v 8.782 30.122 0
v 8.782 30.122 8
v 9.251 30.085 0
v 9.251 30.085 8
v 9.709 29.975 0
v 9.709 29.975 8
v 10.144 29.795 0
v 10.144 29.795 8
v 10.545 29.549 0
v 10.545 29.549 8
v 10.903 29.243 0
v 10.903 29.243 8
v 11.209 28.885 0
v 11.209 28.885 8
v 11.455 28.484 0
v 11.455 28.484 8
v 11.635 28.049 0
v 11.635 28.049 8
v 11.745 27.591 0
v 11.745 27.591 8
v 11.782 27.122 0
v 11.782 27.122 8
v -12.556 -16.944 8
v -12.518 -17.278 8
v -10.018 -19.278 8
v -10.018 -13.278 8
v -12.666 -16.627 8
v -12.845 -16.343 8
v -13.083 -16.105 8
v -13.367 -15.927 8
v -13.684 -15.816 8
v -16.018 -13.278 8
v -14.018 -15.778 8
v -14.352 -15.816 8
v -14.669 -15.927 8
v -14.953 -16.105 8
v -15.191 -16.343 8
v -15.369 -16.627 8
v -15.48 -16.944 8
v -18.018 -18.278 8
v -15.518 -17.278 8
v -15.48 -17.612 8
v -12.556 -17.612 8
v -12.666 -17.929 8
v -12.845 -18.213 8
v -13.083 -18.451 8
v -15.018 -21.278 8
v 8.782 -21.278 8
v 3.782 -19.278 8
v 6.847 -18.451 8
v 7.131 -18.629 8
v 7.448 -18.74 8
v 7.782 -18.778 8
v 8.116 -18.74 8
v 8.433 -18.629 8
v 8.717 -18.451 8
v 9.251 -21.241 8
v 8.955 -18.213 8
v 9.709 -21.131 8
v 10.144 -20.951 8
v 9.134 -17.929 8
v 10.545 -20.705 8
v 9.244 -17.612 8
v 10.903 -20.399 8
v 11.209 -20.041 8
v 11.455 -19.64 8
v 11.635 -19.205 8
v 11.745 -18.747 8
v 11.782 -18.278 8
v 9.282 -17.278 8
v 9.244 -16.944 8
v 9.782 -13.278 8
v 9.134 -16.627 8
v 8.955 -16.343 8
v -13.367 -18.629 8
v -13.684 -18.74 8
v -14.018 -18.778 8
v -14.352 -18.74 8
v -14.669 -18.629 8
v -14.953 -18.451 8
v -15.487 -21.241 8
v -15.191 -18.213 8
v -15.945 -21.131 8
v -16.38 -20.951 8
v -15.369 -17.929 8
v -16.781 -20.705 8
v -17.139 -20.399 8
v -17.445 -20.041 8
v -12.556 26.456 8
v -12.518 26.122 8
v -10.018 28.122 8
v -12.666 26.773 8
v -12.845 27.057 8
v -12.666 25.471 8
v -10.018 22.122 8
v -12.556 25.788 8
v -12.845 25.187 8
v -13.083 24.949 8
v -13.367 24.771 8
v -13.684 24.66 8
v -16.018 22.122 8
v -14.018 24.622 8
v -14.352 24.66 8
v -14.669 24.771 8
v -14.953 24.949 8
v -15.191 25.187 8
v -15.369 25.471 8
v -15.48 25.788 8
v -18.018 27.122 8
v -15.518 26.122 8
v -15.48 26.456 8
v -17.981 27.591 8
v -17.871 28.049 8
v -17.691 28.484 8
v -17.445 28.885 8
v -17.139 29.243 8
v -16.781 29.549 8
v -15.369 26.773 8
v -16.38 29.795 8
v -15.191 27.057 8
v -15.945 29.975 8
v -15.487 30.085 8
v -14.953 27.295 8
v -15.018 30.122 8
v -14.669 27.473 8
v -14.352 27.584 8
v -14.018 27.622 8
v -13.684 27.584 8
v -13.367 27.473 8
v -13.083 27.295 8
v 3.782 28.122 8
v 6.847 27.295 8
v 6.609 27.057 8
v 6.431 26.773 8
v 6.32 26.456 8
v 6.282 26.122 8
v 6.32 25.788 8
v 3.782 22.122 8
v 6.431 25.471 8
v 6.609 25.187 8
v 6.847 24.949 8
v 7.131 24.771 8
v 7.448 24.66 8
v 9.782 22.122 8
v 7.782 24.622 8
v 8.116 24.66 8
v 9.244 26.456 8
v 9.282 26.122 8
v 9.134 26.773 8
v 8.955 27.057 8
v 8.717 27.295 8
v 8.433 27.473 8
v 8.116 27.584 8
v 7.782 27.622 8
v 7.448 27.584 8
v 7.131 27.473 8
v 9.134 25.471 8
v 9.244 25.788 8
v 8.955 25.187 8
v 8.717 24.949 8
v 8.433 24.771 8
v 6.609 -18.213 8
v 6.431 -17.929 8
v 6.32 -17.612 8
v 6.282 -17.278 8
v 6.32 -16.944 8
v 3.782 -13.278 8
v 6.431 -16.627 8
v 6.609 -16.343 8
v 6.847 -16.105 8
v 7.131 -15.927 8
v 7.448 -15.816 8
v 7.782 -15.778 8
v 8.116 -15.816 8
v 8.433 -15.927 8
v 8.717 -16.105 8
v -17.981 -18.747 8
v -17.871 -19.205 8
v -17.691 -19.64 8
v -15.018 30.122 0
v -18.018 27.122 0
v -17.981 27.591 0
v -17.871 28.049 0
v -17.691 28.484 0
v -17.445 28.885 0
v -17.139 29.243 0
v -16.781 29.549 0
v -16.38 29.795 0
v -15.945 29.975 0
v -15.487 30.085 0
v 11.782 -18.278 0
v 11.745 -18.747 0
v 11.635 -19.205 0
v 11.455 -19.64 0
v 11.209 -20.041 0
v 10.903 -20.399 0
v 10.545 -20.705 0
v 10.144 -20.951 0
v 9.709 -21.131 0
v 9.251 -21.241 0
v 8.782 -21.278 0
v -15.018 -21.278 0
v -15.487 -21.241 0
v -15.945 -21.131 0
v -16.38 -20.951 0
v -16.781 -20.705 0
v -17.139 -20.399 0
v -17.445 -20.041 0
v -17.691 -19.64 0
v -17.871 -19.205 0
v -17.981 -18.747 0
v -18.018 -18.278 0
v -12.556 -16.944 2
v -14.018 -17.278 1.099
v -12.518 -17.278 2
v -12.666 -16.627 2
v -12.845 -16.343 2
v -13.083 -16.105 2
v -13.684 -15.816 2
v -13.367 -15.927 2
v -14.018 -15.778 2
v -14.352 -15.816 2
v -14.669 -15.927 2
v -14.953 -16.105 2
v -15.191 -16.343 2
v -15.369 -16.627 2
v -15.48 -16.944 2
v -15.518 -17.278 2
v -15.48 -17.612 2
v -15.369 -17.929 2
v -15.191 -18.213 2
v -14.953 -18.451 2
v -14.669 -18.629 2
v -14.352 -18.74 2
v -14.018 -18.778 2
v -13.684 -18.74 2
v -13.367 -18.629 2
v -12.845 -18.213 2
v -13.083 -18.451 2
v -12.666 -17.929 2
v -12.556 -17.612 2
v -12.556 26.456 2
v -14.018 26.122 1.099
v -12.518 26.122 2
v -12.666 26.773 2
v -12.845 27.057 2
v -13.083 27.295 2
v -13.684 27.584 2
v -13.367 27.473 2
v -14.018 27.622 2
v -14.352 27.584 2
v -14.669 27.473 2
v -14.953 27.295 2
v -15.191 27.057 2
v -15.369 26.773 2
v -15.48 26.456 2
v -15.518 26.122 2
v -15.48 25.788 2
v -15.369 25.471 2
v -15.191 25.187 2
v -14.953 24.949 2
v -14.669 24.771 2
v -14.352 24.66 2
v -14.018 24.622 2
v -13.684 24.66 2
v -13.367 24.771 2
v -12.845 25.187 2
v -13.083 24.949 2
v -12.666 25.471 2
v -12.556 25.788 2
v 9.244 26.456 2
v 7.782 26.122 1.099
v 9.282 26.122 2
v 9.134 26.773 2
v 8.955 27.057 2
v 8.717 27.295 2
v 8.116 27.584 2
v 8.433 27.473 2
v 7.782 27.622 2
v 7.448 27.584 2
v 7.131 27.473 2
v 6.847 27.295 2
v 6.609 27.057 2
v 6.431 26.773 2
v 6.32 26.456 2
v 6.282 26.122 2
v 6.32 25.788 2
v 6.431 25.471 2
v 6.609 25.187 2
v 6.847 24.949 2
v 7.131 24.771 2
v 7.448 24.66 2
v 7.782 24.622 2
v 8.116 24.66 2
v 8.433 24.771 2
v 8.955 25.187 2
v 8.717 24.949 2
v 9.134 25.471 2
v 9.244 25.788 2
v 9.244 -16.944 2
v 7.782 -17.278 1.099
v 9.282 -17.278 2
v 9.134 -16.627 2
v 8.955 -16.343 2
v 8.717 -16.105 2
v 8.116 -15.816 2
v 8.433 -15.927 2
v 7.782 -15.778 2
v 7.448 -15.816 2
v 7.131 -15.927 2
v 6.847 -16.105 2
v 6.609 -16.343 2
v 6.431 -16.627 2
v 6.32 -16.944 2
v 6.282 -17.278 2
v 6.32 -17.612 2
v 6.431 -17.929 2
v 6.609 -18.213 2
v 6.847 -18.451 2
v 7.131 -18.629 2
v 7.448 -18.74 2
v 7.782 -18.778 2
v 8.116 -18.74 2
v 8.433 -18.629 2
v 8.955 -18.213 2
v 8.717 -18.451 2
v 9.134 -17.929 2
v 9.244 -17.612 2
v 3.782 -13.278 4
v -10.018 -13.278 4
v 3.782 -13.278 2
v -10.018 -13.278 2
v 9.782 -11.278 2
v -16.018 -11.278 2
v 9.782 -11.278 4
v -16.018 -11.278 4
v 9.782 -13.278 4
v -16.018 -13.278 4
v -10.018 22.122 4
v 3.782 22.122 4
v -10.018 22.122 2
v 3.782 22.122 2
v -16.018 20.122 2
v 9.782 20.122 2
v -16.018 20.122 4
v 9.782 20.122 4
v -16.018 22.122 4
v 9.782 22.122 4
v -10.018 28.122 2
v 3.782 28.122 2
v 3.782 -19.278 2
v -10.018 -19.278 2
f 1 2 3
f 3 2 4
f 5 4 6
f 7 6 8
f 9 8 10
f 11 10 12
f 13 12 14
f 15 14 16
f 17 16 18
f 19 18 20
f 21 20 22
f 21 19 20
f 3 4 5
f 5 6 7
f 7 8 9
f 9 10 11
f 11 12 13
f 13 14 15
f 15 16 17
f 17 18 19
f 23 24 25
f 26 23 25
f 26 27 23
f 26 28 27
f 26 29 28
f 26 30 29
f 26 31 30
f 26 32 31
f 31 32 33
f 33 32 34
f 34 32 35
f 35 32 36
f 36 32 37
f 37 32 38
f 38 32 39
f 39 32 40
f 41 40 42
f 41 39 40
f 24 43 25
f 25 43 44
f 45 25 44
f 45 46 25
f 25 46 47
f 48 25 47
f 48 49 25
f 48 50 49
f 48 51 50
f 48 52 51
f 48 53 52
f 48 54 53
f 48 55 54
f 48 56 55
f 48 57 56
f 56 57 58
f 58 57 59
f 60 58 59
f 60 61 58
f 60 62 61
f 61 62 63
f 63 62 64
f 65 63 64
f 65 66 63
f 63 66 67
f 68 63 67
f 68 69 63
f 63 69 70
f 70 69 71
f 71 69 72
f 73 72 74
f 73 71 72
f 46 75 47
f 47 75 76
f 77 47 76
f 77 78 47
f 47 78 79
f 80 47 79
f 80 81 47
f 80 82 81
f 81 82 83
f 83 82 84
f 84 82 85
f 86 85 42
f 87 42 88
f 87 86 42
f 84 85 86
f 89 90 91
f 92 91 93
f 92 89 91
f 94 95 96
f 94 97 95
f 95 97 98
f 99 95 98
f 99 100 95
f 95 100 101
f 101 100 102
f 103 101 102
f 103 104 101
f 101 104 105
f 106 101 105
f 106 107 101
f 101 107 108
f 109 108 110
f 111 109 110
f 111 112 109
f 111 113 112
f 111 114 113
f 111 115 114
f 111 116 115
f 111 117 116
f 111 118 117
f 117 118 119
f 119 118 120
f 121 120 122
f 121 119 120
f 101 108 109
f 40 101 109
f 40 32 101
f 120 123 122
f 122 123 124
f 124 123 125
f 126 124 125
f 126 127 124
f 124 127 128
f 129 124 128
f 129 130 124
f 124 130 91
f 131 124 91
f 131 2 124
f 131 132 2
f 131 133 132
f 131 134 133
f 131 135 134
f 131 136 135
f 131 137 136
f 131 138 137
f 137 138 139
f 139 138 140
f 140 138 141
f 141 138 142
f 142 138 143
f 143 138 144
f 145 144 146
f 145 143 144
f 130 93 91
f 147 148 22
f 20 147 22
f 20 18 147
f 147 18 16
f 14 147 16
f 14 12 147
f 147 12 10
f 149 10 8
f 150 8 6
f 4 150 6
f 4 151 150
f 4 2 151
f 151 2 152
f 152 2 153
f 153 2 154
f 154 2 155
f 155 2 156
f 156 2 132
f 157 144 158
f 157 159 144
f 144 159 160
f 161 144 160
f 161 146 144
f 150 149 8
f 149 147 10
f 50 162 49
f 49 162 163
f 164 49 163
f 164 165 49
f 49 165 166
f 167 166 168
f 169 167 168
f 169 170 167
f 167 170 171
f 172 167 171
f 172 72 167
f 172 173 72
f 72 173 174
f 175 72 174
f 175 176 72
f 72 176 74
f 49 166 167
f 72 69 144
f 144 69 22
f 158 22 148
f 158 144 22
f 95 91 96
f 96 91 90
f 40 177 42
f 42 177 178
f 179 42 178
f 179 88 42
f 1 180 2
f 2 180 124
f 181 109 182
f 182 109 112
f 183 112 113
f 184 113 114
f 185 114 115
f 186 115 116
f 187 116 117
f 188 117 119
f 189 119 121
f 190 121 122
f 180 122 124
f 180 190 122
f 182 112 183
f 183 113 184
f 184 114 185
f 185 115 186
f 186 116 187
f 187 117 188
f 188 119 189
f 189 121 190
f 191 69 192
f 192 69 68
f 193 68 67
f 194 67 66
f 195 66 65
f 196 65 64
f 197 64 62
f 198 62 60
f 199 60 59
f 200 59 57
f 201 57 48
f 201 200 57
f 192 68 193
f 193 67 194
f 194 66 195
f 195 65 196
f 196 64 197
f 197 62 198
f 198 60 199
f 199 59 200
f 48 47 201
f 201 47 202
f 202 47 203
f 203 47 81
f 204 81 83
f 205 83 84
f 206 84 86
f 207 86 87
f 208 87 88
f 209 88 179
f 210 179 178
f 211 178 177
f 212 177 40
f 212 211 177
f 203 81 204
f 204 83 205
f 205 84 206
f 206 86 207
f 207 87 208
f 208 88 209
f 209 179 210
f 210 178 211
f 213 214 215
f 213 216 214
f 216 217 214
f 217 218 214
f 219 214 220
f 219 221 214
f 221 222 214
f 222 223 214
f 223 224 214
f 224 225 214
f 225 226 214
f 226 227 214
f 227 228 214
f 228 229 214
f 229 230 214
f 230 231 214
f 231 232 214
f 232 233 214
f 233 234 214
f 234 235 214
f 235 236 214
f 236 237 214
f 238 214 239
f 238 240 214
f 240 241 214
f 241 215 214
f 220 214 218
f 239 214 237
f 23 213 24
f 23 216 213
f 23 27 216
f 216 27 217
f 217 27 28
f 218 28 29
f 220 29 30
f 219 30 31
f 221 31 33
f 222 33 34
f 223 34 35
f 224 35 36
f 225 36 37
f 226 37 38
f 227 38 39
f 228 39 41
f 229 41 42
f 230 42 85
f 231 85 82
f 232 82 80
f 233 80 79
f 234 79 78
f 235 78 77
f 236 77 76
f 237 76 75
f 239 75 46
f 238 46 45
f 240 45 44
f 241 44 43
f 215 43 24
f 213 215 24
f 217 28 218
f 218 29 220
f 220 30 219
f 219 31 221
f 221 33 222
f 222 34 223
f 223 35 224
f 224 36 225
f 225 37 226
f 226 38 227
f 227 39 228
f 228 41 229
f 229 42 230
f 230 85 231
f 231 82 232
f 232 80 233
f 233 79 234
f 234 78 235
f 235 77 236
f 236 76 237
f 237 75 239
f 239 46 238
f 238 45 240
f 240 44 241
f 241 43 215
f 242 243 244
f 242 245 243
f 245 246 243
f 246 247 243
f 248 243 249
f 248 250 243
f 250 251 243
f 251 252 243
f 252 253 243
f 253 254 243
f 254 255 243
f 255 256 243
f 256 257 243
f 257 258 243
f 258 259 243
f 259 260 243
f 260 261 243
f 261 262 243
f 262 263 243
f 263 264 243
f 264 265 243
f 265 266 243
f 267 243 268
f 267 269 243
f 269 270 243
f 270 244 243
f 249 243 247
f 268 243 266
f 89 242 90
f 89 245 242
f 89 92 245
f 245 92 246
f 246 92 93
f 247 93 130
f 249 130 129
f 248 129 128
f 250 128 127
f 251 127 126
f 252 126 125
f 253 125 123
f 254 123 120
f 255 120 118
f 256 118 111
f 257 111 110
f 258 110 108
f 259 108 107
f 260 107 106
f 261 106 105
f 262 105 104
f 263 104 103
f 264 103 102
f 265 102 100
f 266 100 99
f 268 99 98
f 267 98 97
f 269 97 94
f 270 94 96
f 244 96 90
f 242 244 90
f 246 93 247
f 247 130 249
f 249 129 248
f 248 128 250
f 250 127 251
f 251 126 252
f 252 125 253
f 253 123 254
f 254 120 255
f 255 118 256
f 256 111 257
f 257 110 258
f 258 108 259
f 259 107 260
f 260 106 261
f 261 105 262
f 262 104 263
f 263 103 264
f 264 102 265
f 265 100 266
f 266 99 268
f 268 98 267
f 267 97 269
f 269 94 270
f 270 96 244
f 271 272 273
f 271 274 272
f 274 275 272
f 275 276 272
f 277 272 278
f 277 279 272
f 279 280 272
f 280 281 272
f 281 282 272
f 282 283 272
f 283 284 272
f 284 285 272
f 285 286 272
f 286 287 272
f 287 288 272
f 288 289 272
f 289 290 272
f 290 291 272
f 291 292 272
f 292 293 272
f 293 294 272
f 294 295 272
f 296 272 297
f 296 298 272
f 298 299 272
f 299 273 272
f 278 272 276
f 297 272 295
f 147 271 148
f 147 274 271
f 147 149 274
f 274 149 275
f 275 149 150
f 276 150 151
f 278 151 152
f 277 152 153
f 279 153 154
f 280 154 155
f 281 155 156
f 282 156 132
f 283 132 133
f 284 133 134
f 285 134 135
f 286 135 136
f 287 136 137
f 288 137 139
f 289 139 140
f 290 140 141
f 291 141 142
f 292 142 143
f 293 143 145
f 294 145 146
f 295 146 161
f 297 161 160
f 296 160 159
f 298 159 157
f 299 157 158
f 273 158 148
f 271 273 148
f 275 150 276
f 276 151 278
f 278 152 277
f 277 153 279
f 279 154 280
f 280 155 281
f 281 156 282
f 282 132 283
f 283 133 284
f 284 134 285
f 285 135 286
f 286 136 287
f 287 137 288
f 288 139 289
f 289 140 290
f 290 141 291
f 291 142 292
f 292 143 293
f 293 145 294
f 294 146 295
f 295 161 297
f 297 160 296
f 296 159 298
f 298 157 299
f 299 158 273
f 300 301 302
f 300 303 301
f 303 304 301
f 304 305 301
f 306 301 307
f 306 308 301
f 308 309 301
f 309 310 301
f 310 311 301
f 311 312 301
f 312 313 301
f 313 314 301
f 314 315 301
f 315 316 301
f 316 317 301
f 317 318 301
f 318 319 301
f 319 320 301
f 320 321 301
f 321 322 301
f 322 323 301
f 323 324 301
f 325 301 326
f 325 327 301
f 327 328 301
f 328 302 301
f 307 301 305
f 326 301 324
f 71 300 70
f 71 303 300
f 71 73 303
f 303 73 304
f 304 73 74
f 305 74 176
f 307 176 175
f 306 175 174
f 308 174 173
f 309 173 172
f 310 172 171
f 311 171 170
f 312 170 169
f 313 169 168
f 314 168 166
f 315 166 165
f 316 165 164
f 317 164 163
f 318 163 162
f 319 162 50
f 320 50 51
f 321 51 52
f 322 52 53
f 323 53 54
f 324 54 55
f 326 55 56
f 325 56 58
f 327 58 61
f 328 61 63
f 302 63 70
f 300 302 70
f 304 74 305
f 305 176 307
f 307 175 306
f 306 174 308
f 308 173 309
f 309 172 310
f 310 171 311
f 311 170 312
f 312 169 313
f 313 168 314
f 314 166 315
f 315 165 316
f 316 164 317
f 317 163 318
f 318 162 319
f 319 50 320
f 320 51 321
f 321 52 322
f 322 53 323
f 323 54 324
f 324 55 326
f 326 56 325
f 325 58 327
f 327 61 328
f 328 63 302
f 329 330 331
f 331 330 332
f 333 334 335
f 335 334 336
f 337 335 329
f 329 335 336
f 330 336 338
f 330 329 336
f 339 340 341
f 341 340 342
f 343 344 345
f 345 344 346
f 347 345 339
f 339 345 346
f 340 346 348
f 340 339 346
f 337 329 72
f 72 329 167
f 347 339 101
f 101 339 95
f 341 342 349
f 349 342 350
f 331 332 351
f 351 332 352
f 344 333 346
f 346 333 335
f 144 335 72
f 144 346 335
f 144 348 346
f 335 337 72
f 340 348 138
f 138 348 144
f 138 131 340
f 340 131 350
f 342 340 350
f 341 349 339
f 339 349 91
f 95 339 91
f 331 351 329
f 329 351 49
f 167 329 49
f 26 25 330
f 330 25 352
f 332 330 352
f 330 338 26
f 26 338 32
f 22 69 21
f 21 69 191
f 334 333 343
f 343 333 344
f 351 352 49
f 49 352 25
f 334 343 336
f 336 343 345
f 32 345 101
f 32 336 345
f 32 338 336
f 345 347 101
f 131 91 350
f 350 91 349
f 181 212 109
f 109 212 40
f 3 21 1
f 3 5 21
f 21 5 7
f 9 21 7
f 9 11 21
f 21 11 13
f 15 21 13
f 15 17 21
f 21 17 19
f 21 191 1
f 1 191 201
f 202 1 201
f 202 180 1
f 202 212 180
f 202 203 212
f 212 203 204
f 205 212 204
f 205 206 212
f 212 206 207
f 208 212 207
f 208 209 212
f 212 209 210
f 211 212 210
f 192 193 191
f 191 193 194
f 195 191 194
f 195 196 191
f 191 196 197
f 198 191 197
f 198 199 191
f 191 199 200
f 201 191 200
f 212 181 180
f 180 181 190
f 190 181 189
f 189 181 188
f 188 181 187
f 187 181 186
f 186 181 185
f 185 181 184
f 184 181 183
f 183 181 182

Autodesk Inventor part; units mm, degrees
ref_plane "YZ Plane" through (0, 0, 0) normal (1, 0, 0) x (0, 1, 0)
ref_plane "XZ Plane" through (0, 0, 0) normal (0, 1, 0) x (-1, 0, 0)
ref_plane "XY Plane" through (0, 0, 0) normal (0, 0, 1) x (1, 0, 0)
sketch "Sketch1" plane through (0, 0, 0) normal (0, 0, 1) x (1, 0, 0)
  line L0 (-18.0179, 30.122) -> (11.7821, 30.122)
  line L1 (11.7821, 30.122) -> (11.7821, -21.278)
  line L2 (11.7821, -21.278) -> (-18.0179, -21.278)
  line L3 (-18.0179, -21.278) -> (-18.0179, 30.122)
  point P0 (0, 0)
  dimension "d0" = 29.8
  dimension "d1" = 51.4
extrude "Extrusion1" add sketch "Sketch1" along normal blind 2
sketch "Sketch2" plane through (0, 0, 2) normal (0, 0, 1) x (1, 0, 0)
  line L0 (-18.0179, 30.122) -> (11.7821, 30.122)
  line L1 (11.7821, 30.122) -> (11.7821, -21.278)
  line L2 (11.7821, -21.278) -> (-18.0179, -21.278)
  line L3 (-18.0179, -21.278) -> (-18.0179, 30.122)
  line L4 (-16.0179, 28.122) -> (9.7821, 28.122)
  line L5 (9.7821, 28.122) -> (9.7821, -19.278)
  line L6 (9.7821, -19.278) -> (-16.0179, -19.278)
  line L7 (-16.0179, -19.278) -> (-16.0179, 28.122)
  point P0 (0, 0)
  dimension "d4" = 2
  dimension "d5" = 2
  dimension "d6" = 2
  dimension "d7" = 2
  dimension "d8" = 25.8
  dimension "d9" = 47.4
extrude "Extrusion2" add sketch "Sketch2" along normal blind 6
sketch "Sketch3" plane through (0, 0, 2) normal (0, 0, 1) x (1, 0, 0)
  point P0 (0, 0)
sketch "Sketch4" plane through (0, 0, 2) normal (0, 0, 1) x (1, 0, 0)
  line L0 (-18.0179, 30.122) -> (-10.0179, 30.122)
  line L1 (-10.0179, 30.122) -> (-10.0179, 22.122)
  line L2 (-10.0179, 22.122) -> (-18.0179, 22.122)
  line L3 (-18.0179, 22.122) -> (-18.0179, 30.122)
  line L4 (11.7821, 30.122) -> (3.7821, 30.122)
  line L5 (3.7821, 30.122) -> (3.7821, 22.122)
  line L6 (3.7821, 22.122) -> (11.7821, 22.122)
  line L7 (11.7821, 22.122) -> (11.7821, 30.122)
  line L8 (-18.0179, -21.278) -> (-10.0179, -21.278)
  line L9 (-10.0179, -21.278) -> (-10.0179, -13.278)
  line L10 (-10.0179, -13.278) -> (-18.0179, -13.278)
  line L11 (-18.0179, -13.278) -> (-18.0179, -21.278)
  line L12 (11.7821, -21.278) -> (3.7821, -21.278)
  line L13 (3.7821, -21.278) -> (3.7821, -13.278)
  line L14 (3.7821, -13.278) -> (11.7821, -13.278)
  line L15 (11.7821, -13.278) -> (11.7821, -21.278)
  line L16 (-18.0179, 30.122) -> (-18.0179, -21.278) projected
  line L17 (-18.0179, -21.278) -> (11.7821, -21.278) projected
  point P0 (0, 0)
  dimension "d12" = 8
  dimension "d13" = 8
  dimension "d14" = 8
  dimension "d15" = 8
  dimension "d16" = 8
  dimension "d17" = 8
  dimension "d18" = 8
  dimension "d19" = 8
  dimension "d20" = 35.4
extrude "Extrusion3" add sketch "Sketch4" along normal blind 6
sketch "Sketch5" plane through (0, 0, 2) normal (0, 0, 1) x (1, 0, 0)
  line L0 (9.7821, 22.122) -> (9.7821, -13.278) projected
  line L1 (-16.0179, 22.122) -> (9.7821, 22.122)
  line L2 (9.7821, 22.122) -> (9.7821, 20.122)
  line L3 (9.7821, 20.122) -> (-16.0179, 20.122)
  line L4 (-16.0179, 20.122) -> (-16.0179, 22.122)
  line L5 (-16.0179, -13.278) -> (9.7821, -13.278)
  line L6 (9.7821, -13.278) -> (9.7821, -11.278)
  line L7 (9.7821, -11.278) -> (-16.0179, -11.278)
  line L8 (-16.0179, -11.278) -> (-16.0179, -13.278)
  point P0 (0, 0)
  dimension "d23" = 2
  dimension "d24" = 2
extrude "Extrusion4" add sketch "Sketch5" along normal blind 2
sketch "Sketch6" plane through (0, 0, 8) normal (0, 0, 1) x (1, 0, 0)
  point P0 (0, 0)
sketch "Sketch7" plane through (0, 0, 8) normal (0, 0, 1) x (1, 0, 0)
  line L0 (-10.0179, -13.278) -> (-16.0179, -13.278) projected
  line L1 (-18.0179, 30.122) -> (-18.0179, -21.278) projected
  line L2 (9.7821, -13.278) -> (3.7821, -13.278) projected
  line L3 (11.7821, 30.122) -> (11.7821, -21.278) projected
  line L4 (11.7821, 30.122) -> (-18.0179, 30.122) projected
  point P0 (0, 0)
  point P1 (-14.0179, 26.122)
  point P2 (7.7821, 26.122)
  point P3 (-14.0179, -17.278)
  point P4 (7.7821, -17.278)
  dimension "d27" = 4
  dimension "d28" = 4
  dimension "d29" = 4
  dimension "d30" = 4
  dimension "d31" = 4
  dimension "d32" = 4
  dimension "d33" = 4
  dimension "d34" = 4
hole "Hole1" at (-14.0179, 26.122, 8) at (7.7821, 26.122, 8) at (-14.0179, -17.278, 8) at (7.7821, -17.278, 8) direction (0, 0, -1) diameter 3 depth 6 tip angle 118
fillet "Fillet1" radius 3 4 edges at (-18.0179, -21.278, 4) (11.7821, -21.278, 4) (-18.0179, 30.122, 4) (11.7821, 30.122, 4)
sketch "Sketch8" plane through (0, 0, 8) normal (0, 0, 1) x (1, 0, 0)
  line L0 (9.7821, 22.122) -> (9.7821, -13.278) projected
  line L1 (-16.0179, -13.278) -> (-16.0179, 22.122) projected
  point P0 (0, 0)
  dimension "d43" = 25.8
properties part number "base"
